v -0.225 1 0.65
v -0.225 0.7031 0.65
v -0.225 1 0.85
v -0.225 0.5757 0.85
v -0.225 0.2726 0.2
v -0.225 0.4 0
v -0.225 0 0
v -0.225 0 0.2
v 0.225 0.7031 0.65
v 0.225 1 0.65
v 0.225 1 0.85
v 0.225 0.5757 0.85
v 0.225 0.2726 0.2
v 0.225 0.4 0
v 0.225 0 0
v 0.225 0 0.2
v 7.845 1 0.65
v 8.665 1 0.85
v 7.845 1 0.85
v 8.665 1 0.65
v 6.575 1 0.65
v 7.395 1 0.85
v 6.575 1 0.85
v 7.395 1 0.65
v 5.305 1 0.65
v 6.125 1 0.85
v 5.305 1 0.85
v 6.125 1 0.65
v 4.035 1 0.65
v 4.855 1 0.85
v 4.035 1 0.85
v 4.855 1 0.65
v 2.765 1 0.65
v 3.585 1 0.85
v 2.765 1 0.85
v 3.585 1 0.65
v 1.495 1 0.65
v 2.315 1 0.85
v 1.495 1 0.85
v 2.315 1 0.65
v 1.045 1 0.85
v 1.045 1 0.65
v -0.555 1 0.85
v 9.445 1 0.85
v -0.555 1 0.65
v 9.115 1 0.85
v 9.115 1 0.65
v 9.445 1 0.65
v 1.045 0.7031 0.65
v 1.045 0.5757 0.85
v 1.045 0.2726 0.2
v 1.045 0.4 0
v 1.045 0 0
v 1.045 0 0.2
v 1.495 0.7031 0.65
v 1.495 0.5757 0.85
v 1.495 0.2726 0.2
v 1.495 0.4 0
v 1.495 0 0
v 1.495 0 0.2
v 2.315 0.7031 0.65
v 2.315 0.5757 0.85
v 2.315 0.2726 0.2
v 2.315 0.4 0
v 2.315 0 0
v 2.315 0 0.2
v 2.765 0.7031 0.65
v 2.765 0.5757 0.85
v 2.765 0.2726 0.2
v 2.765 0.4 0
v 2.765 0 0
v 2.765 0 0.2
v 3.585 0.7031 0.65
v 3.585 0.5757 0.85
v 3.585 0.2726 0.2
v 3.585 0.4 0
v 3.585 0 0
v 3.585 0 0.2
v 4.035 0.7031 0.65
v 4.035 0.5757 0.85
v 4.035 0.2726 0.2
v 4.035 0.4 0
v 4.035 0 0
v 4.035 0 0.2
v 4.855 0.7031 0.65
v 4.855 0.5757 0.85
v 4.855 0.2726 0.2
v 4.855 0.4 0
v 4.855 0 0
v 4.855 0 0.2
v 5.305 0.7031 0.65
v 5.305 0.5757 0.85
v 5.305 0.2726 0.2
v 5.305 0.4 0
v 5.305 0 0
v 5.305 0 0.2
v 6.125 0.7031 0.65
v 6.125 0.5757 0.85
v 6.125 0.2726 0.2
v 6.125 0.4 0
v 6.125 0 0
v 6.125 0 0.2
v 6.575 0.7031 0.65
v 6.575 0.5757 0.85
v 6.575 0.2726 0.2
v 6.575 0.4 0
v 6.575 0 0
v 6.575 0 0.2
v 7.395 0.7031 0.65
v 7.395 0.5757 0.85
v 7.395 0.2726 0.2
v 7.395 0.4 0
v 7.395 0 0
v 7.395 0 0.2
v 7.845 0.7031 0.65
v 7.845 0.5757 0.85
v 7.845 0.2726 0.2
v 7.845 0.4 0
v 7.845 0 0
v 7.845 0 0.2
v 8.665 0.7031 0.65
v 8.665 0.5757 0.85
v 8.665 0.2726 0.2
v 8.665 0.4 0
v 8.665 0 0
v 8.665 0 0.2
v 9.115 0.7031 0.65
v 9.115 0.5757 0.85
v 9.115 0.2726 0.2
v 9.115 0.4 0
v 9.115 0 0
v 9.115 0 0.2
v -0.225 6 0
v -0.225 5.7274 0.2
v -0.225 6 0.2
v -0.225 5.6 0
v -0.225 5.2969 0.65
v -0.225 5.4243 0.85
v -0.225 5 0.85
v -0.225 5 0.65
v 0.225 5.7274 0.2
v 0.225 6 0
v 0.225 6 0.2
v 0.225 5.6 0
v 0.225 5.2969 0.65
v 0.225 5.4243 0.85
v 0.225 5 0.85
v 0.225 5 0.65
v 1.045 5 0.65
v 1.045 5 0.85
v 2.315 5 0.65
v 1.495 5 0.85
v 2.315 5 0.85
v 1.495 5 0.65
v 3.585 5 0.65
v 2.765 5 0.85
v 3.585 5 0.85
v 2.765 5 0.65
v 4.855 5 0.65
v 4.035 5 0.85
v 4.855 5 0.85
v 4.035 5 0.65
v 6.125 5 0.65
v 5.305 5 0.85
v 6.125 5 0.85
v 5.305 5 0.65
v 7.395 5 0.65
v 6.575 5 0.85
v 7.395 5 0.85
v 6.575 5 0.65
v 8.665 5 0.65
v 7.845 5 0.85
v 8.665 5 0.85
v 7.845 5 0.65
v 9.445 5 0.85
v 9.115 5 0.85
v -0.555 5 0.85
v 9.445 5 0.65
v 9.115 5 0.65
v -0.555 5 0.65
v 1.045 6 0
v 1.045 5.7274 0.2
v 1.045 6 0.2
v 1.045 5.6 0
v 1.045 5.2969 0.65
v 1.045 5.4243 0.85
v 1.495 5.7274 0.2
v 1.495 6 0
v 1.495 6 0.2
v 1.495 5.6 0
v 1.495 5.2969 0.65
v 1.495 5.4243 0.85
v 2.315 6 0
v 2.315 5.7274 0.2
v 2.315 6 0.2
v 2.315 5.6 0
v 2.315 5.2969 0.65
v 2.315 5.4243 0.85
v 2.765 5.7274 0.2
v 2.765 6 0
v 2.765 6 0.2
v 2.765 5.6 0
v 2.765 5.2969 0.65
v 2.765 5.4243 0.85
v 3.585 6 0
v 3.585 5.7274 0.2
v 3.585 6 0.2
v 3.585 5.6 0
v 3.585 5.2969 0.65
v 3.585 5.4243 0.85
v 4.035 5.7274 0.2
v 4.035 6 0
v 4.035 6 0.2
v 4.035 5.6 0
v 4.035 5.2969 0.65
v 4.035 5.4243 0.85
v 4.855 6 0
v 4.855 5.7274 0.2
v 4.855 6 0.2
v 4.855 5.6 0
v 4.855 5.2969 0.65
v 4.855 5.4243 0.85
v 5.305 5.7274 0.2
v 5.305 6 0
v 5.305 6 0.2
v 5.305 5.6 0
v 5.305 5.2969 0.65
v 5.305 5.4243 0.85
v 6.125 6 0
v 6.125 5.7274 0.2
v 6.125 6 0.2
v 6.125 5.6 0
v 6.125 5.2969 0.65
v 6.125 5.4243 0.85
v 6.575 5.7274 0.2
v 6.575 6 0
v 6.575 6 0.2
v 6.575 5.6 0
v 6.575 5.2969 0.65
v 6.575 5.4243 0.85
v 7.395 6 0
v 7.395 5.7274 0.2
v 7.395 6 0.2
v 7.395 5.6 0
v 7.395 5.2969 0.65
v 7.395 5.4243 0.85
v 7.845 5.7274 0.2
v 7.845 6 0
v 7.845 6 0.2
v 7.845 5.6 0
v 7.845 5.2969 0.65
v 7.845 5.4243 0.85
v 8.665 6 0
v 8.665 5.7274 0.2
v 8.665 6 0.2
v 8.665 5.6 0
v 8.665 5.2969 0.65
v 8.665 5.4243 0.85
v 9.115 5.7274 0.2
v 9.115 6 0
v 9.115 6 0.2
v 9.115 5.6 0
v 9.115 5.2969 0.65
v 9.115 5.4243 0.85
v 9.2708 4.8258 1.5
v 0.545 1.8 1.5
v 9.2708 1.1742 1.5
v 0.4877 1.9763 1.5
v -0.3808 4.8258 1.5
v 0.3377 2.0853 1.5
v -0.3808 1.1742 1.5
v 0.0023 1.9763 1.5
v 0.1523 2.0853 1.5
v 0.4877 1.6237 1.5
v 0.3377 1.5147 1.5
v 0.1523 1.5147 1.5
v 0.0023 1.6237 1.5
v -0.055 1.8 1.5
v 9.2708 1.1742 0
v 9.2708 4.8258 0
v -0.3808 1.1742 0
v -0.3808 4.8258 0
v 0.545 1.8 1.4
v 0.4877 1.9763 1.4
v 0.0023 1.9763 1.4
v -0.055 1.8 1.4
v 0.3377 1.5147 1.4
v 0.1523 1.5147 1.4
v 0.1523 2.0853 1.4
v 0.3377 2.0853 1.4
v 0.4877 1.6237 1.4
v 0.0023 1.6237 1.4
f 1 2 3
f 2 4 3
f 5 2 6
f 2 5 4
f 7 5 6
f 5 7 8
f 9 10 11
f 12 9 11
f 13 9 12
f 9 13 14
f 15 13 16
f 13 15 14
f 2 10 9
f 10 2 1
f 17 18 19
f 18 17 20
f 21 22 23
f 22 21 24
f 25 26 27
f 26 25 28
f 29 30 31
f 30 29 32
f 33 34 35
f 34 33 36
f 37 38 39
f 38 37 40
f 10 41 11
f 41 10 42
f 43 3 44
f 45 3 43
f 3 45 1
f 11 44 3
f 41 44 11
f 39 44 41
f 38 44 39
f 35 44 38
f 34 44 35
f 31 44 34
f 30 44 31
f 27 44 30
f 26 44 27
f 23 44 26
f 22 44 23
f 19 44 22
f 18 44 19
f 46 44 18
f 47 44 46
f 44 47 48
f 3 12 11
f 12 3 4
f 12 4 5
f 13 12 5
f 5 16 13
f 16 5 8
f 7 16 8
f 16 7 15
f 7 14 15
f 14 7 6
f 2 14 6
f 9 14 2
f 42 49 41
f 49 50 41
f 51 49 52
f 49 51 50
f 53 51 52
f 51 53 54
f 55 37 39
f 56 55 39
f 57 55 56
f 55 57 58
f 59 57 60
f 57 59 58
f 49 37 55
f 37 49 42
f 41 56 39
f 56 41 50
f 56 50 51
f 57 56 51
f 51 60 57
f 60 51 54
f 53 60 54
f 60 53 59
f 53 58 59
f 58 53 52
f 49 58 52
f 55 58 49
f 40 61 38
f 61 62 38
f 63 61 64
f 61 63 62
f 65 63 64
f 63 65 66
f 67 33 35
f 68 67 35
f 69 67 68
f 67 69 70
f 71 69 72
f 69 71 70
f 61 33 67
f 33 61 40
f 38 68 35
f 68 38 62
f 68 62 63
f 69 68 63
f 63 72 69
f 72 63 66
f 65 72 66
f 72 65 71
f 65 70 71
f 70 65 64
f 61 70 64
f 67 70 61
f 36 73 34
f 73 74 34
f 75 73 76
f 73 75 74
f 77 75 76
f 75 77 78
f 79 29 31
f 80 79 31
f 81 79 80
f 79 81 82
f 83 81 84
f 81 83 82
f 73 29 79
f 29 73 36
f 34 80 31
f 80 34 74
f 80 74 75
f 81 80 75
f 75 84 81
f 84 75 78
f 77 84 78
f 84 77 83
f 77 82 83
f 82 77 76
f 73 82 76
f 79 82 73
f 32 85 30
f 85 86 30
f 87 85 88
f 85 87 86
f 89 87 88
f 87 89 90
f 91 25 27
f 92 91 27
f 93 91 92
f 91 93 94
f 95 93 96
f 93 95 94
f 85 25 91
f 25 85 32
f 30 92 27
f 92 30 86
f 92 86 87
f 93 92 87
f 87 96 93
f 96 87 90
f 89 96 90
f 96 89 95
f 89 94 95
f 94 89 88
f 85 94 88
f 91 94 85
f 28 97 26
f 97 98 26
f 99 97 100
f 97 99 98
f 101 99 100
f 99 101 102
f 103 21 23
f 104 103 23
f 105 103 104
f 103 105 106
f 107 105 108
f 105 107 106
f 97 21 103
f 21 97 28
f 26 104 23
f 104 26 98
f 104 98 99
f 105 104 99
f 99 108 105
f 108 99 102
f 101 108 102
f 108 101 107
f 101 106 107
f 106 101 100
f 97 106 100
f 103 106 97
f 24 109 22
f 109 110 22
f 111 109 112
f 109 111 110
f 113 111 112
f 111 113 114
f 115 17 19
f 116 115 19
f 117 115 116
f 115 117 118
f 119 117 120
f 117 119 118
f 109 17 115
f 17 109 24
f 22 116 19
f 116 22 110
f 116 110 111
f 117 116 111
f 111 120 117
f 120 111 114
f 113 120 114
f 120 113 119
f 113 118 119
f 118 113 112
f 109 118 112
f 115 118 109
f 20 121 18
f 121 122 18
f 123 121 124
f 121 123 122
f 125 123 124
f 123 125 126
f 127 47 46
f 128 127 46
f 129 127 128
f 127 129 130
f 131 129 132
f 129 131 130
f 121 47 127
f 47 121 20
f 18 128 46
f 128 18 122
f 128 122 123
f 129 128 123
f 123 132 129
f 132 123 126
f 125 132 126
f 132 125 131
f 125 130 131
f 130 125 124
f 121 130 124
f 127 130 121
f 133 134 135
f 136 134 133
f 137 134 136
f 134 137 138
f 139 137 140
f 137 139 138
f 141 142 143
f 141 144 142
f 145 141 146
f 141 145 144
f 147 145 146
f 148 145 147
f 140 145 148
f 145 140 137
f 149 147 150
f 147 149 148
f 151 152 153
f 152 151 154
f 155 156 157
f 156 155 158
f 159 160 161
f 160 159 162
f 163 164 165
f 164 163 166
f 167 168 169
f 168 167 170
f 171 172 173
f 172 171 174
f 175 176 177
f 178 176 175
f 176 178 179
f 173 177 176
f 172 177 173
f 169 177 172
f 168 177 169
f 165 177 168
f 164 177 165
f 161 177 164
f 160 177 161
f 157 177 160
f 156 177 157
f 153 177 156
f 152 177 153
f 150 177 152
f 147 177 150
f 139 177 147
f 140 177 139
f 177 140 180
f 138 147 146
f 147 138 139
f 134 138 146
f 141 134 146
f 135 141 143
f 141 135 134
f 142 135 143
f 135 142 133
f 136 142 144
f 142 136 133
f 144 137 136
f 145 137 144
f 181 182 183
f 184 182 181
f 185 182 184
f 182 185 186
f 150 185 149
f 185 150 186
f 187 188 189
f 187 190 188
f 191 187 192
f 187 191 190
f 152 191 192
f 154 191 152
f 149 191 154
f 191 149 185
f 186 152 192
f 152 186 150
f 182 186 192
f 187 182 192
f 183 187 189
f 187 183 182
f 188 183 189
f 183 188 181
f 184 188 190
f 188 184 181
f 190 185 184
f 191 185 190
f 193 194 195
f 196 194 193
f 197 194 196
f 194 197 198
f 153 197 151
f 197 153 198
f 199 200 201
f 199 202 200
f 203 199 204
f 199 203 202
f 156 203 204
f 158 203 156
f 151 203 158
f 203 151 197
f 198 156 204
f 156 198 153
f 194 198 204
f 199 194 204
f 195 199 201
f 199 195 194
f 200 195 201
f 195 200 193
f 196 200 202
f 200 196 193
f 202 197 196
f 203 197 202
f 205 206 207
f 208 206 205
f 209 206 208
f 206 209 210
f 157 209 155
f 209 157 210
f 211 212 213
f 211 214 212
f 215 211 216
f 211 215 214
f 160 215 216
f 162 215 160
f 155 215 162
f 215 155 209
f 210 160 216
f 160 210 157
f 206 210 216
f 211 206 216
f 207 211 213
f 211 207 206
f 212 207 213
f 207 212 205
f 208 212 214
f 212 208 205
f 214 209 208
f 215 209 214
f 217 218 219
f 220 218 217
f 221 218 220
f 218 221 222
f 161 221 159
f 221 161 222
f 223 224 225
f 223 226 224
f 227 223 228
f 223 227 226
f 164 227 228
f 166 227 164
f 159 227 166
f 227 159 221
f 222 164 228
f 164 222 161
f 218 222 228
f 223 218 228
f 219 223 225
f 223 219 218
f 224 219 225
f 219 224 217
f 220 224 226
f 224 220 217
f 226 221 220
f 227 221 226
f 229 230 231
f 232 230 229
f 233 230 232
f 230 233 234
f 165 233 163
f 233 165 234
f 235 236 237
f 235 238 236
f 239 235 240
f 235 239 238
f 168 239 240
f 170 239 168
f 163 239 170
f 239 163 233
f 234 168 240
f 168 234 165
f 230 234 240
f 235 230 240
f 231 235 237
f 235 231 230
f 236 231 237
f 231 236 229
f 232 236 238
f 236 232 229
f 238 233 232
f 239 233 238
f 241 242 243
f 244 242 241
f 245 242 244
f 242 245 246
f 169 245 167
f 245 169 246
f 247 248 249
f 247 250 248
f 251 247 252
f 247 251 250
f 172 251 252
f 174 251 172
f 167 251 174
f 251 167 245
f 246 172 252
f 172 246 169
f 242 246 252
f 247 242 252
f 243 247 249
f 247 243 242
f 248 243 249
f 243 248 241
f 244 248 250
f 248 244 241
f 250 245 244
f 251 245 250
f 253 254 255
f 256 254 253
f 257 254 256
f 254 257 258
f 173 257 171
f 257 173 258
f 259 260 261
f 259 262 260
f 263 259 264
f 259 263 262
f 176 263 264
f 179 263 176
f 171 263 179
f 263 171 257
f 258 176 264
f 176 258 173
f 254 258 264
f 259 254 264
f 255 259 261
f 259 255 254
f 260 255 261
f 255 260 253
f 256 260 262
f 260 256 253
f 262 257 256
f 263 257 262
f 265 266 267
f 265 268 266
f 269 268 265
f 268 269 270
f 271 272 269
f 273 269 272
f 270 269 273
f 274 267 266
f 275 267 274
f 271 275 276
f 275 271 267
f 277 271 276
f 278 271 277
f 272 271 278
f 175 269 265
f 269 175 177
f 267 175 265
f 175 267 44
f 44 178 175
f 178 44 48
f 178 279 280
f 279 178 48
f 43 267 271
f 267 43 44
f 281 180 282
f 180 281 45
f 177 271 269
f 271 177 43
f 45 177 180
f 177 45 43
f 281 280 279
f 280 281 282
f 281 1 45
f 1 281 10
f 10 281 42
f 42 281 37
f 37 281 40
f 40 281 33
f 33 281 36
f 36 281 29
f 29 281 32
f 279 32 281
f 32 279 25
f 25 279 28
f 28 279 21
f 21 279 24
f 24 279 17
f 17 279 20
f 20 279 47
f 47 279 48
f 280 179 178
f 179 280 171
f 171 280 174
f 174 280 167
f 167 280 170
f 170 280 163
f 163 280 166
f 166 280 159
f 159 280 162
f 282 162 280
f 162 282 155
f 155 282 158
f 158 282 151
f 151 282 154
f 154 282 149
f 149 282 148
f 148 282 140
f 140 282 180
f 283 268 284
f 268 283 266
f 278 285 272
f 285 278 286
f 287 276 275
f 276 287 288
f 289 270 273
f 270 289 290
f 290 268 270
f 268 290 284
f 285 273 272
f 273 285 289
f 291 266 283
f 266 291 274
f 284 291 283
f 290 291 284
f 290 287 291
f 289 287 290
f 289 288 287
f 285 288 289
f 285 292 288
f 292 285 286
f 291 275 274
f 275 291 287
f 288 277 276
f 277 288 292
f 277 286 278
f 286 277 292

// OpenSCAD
// file: pin.scad
// This module outputs bended pin
// _L - whole pin length
// _l - length of bottom part
// _H - whole pin height
// _th - pin thickness
// _a - bending angle
// _W - pin width
module pin(_L,_l,_H,_th,_a,_W)
{
	// Internal variables
    _d1 = _th*sin(_a) / (1-cos(_a));
    _d2 = (_th-_H)*cos(_a) / sin(_a);

	rotate([90,0,90])
    // Extrude the following polygon
	linear_extrude(height = _W, center = true, convexity = 10, twist = 0)
        polygon([[0,0],
                 [_l,0],
				 [_l+_d2,_H-_th],
				 [_L,_H-_th],
				 [_L,_H],
				 [_l+_d2-_d1,_H],
				 [_l-_d1,_th],
				 [0,_th]]);
}

// Example of usage
pin(2,1,1,0.2,115,0.5);
// file: case.scad
// This module draws case
// _L - case length
// _W - case width
// _H - case height
// _ph - top point (vertical) of pin connection area
// _pt - pin thickness
// _atl - case angle top left,
// _atr - case angle top right,
// _atu - case angle top up
// _atd - case angle top down
// _abl - case angle bottom left,
// _abr - case angle bottom right,
// _abu - case angle bottom up
// _abd - case angle bottom down
// _n_x - notch X position relative to case corner
// _n_y - notch Y position relative to case corner
// _n_d - notch diameter
// _n_z - notch_depth
module case(_L,_W,_H,_ph,_pt,_atl,_atr,_atu,_atd,_abl,_abr,_abu,_abd, _n_x, _n_y, _n_d, _n_z)
{
    _tth = _H - _ph;
    _bth = _ph - _pt;
    _dtl = _tth * cos(_atl) / sin(_atl);
    _dtr = _tth * cos(_atr) / sin(_atr);
    _dtu = _tth * cos(_atu) / sin(_atu);
    _dtd = _tth * cos(_atd) / sin(_atd);
    _dbl = _bth * cos(_abl) / sin(_abl);
    _dbr = _bth * cos(_abr) / sin(_abr);
    _dbu = _bth * cos(_abu) / sin(_abu);
    _dbd = _bth * cos(_abd) / sin(_abd);
	// Make case with notch - difference between case and small cylinder
    difference()
    {
        // This is our case
        polyhedron(
            points = [
                // top points
                [ 0 + _dtl, 0 + _dtd, _H],
                [_L - _dtr, 0 + _dtd, _H],
                [_L - _dtr,_W - _dtu, _H],
                [ 0 + _dtl,_W - _dtu, _H],
                // middle top points
                [ 0, 0,_ph],
                [_L, 0,_ph],
                [_L,_W,_ph],
                [ 0,_W,_ph],
                // middle bottom points
                [ 0, 0,_ph - _pt],
                [_L, 0,_ph - _pt],
                [_L,_W,_ph - _pt],
                [ 0,_W,_ph - _pt],
                // bottom points
                [ 0 + _dbl, 0 + _dbd, 0],
                [_L - _dbr, 0 + _dbd, 0],
                [_L - _dbr,_W - _dbu, 0],
                [ 0 + _dbl,_W - _dbu, 0]
            ],
            triangles = [
                // Top
                [ 0, 3, 2, 1],
                // Top sides
                [ 4, 0, 1, 5],
                [ 5, 1, 2, 6],
                [ 6, 2, 3, 7],
                [ 7, 3, 0, 4],
                // Middle sides
                [ 4, 5, 9, 8],
                [ 5, 6,10, 9],
                [ 6, 7,11,10],
                [ 7, 4, 8,11],
                // Bottom sides
                [12, 8, 9,13],
                [13, 9,10,14],
                [14,10,11,15],
                [15,11, 8,12],
                // Bottom
                [12,13,14,15]
            ]
        );
        // This is notch
        translate([_n_x,_n_y,_H])
            cylinder(r = _n_d/2, h = _n_z*2, center = true, $fn=10);
    }
}

// Example of usage
// case(10,5,1.5,0.7,0.3,80,80,80,80,45,45,45,45, 1,1,1);
// main file
use <case.scad>
use <pin.scad>

case_z = 1.5;
case_x = 10;
case_y = 4;
case_a = 75;

notch_d=0.6;
notch_depth=0.1;
notch_x=0.8;
notch_y=0.8;

side1_pins = 8;
side2_pins = 0;
side3_pins = 8;
side4_pins = 0;
pin_distance = 1.27;

pin_th = 0.2;
pin_W = 0.45;
pin_L = 1;
pin_H = case_z/2+pin_th/2;
pin_l = 0.4;
pin_a = 115;

// Array of pins
// _cnt - number of pins
// _distance - distance between pin centres
module pins_array(_cnt, _distance)
{
	if (_cnt>0)
	{
		for (_i = [0:_cnt-1])
		{
			translate([_distance*_i,0,0])
				pin(pin_L,pin_l,pin_H,pin_th,pin_a,pin_W);
		}
	}
}

// Complete model
union()
{
	// Top pins
	translate([(side1_pins-side3_pins)*pin_distance/2,case_y+pin_L*2,0])
		mirror([0,1,0])
			pins_array(side3_pins, pin_distance);

	// Bottom pins
	pins_array(side1_pins, pin_distance);

	// Left pins
	translate([-(case_x-(side1_pins-1)*pin_distance)/2 - pin_L,pin_L+case_y/2-(side4_pins-1)*pin_distance/2,0])
		mirror([1,0,0])
			rotate([0,0,90])
				pins_array(side4_pins, pin_distance);

	// Right pins
	translate([-(case_x-(side1_pins-1)*pin_distance)/2-pin_L+case_x+2*pin_L,pin_L+case_y/2-(side2_pins-1)*pin_distance/2,0])
		mirror([0,1,0])
			mirror([0,1,0])
				rotate([0,0,90])
					pins_array(side2_pins, pin_distance);

	// Case
	translate([-(case_x-(side1_pins-1)*pin_distance)/2,pin_L,0])
		case(case_x,case_y,case_z,pin_H,pin_th,case_a,case_a,case_a,case_a,case_a,case_a,case_a,case_a, notch_x,notch_y,notch_d,notch_depth);
}
